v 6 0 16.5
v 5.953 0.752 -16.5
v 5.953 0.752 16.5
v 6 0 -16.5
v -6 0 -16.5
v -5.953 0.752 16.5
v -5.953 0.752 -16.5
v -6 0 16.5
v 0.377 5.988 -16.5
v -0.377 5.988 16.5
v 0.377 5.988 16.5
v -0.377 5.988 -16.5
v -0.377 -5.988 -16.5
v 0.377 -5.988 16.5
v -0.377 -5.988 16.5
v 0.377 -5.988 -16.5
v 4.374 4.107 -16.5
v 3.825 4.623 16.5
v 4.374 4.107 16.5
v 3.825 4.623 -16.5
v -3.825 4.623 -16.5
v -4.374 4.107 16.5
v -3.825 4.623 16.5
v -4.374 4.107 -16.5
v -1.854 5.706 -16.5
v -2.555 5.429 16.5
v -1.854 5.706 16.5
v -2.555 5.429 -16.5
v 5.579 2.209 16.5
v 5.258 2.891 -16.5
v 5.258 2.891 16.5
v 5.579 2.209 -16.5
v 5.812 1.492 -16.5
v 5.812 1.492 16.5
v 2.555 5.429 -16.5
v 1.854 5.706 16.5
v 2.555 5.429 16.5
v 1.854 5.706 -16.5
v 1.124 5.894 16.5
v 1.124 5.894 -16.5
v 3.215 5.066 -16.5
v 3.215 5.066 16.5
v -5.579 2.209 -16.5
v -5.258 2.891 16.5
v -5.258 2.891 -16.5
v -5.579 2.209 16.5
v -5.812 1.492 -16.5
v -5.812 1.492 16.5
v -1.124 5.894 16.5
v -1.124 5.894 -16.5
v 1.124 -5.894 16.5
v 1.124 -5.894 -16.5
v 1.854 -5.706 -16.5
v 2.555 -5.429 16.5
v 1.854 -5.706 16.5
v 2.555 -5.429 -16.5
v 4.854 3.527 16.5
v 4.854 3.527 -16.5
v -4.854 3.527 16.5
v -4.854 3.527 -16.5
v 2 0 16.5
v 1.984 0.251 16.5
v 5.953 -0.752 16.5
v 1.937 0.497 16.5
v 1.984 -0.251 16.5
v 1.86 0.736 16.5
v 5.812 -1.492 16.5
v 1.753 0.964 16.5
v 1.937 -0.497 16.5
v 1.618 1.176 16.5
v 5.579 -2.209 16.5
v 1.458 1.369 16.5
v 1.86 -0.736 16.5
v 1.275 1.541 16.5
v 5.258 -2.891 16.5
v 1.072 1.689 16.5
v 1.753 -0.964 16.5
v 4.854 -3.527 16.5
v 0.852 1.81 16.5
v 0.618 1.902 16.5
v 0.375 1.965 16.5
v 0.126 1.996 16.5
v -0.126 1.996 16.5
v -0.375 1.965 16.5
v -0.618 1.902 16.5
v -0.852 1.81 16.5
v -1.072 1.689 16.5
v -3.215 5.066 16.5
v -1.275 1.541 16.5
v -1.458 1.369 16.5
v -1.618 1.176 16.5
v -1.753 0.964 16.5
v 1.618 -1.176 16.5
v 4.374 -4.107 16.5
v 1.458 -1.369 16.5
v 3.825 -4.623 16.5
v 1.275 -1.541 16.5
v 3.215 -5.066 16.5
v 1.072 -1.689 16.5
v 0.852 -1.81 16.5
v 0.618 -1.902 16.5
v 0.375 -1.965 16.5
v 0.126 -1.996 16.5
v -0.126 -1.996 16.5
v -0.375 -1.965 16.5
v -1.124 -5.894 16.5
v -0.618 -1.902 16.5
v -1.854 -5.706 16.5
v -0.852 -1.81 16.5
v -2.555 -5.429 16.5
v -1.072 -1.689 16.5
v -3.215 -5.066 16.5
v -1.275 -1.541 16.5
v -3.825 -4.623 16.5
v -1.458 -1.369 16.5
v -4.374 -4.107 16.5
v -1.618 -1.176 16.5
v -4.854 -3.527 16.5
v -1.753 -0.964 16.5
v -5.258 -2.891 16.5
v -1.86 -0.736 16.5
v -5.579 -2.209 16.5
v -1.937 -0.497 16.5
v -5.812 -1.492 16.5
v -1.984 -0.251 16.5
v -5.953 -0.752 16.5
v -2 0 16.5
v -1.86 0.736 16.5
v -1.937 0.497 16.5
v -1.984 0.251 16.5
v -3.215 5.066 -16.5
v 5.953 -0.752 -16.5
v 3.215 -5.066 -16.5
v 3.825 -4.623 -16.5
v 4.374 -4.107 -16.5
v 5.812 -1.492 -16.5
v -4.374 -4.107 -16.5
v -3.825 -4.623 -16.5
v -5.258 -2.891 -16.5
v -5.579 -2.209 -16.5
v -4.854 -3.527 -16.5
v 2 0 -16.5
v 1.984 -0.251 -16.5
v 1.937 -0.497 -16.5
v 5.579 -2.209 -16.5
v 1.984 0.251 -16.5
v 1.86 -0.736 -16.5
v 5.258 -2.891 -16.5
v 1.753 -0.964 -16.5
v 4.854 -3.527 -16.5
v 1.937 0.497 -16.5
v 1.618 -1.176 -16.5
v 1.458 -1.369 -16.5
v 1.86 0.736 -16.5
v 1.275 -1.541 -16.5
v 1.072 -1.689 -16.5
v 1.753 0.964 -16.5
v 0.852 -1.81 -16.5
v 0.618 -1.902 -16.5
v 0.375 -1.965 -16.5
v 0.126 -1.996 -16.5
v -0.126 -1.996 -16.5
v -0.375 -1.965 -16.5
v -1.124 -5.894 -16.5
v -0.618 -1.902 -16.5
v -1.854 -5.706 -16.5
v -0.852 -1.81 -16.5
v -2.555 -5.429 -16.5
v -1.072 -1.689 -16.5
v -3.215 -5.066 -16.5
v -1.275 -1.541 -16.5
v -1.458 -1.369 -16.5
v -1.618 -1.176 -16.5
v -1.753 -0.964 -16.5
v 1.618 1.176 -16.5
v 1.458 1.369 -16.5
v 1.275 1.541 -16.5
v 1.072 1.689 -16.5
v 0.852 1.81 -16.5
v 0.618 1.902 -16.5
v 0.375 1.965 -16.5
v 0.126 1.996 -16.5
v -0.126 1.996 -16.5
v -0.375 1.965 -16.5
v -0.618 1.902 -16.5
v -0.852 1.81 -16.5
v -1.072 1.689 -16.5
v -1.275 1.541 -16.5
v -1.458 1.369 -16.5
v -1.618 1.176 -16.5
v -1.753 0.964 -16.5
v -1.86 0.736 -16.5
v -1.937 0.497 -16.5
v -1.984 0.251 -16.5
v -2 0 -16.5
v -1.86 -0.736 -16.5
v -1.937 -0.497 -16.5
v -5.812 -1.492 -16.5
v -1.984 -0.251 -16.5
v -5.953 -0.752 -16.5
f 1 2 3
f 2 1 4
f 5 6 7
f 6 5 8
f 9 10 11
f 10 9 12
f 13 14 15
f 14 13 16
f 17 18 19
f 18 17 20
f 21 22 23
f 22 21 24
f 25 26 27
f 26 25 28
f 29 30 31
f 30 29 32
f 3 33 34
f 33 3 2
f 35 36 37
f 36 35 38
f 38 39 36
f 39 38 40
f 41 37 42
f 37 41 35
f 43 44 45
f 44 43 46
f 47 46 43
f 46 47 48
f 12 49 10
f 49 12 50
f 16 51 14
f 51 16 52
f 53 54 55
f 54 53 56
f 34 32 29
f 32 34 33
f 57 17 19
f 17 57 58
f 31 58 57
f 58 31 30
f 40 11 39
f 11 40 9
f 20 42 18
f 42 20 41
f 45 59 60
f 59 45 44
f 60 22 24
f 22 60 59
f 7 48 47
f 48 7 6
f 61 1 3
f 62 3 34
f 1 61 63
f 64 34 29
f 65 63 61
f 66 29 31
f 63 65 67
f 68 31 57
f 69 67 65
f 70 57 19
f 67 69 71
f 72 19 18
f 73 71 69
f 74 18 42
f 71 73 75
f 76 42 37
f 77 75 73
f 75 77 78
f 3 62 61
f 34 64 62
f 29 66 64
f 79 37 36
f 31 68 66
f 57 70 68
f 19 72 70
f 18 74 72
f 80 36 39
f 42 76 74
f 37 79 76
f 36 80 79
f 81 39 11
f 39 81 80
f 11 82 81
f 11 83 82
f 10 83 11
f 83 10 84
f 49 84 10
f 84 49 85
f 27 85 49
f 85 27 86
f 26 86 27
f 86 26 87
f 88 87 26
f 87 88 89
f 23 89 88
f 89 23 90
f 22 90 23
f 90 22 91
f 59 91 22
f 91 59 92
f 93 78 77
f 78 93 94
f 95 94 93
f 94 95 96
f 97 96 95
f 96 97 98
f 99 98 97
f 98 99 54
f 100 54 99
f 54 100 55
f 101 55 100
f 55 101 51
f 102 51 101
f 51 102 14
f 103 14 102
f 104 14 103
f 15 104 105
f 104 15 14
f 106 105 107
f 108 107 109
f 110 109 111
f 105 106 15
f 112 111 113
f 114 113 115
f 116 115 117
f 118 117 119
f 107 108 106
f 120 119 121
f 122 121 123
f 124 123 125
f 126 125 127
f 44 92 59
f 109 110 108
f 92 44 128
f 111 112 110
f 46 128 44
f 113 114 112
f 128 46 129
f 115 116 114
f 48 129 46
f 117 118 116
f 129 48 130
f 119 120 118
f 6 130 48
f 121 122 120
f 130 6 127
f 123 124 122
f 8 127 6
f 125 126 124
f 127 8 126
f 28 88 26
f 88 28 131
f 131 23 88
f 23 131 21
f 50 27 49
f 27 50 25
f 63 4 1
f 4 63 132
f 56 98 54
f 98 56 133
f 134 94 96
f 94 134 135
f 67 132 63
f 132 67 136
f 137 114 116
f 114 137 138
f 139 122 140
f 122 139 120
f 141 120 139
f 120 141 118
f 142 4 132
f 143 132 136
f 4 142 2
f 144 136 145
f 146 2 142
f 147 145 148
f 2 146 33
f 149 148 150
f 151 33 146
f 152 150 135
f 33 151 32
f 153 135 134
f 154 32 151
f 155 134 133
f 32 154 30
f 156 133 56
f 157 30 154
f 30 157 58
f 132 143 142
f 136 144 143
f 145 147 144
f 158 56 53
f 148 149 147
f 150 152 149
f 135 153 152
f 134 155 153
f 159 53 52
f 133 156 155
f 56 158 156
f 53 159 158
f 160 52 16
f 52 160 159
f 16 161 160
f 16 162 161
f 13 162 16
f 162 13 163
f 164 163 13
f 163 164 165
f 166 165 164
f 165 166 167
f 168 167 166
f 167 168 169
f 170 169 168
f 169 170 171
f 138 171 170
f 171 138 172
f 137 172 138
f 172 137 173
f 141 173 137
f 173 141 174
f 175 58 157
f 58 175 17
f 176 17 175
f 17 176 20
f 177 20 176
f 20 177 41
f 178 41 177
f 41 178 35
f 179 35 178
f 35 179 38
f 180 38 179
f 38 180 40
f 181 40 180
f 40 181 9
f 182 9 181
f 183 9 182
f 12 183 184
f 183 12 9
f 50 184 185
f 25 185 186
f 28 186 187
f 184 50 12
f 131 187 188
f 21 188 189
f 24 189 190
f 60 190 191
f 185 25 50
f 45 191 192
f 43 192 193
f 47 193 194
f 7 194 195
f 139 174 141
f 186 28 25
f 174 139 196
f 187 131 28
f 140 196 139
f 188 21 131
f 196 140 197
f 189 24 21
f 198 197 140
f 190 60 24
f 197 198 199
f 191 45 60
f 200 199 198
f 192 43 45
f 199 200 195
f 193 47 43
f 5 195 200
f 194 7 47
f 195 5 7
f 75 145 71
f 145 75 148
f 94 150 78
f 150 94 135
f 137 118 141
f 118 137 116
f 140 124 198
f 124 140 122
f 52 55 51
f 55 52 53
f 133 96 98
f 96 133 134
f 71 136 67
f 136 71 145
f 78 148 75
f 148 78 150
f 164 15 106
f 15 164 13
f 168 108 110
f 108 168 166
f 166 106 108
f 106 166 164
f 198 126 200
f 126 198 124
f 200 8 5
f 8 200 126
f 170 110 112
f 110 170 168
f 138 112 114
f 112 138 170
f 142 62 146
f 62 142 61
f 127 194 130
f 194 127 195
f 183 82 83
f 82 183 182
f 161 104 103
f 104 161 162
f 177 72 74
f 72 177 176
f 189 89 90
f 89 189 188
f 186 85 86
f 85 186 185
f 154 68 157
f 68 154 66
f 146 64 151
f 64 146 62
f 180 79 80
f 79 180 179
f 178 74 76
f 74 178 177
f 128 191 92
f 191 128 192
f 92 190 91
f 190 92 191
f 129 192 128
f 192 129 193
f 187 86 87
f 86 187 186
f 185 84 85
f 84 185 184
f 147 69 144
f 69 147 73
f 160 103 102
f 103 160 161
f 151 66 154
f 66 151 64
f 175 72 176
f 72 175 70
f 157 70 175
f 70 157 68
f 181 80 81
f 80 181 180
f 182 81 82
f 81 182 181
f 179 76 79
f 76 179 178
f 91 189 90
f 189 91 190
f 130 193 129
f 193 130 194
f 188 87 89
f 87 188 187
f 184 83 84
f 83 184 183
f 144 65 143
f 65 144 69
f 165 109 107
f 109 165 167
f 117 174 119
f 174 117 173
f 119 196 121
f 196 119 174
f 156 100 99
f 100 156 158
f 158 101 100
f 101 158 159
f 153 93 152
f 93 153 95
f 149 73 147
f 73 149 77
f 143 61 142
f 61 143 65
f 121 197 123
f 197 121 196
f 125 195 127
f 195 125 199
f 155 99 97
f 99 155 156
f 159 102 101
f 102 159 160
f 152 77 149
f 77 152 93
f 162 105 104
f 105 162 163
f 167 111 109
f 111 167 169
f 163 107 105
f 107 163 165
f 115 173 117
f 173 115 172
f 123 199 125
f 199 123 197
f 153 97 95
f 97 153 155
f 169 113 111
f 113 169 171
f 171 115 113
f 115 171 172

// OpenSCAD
$fn = 50;


difference() {
	union() {
		translate(v = [0, 0, -16.5000000000]) {
			cylinder(h = 33, r = 6.0000000000);
		}
	}
	union() {
		translate(v = [0, 0, -100.0000000000]) {
			cylinder(h = 200, r = 2);
		}
	}
}
